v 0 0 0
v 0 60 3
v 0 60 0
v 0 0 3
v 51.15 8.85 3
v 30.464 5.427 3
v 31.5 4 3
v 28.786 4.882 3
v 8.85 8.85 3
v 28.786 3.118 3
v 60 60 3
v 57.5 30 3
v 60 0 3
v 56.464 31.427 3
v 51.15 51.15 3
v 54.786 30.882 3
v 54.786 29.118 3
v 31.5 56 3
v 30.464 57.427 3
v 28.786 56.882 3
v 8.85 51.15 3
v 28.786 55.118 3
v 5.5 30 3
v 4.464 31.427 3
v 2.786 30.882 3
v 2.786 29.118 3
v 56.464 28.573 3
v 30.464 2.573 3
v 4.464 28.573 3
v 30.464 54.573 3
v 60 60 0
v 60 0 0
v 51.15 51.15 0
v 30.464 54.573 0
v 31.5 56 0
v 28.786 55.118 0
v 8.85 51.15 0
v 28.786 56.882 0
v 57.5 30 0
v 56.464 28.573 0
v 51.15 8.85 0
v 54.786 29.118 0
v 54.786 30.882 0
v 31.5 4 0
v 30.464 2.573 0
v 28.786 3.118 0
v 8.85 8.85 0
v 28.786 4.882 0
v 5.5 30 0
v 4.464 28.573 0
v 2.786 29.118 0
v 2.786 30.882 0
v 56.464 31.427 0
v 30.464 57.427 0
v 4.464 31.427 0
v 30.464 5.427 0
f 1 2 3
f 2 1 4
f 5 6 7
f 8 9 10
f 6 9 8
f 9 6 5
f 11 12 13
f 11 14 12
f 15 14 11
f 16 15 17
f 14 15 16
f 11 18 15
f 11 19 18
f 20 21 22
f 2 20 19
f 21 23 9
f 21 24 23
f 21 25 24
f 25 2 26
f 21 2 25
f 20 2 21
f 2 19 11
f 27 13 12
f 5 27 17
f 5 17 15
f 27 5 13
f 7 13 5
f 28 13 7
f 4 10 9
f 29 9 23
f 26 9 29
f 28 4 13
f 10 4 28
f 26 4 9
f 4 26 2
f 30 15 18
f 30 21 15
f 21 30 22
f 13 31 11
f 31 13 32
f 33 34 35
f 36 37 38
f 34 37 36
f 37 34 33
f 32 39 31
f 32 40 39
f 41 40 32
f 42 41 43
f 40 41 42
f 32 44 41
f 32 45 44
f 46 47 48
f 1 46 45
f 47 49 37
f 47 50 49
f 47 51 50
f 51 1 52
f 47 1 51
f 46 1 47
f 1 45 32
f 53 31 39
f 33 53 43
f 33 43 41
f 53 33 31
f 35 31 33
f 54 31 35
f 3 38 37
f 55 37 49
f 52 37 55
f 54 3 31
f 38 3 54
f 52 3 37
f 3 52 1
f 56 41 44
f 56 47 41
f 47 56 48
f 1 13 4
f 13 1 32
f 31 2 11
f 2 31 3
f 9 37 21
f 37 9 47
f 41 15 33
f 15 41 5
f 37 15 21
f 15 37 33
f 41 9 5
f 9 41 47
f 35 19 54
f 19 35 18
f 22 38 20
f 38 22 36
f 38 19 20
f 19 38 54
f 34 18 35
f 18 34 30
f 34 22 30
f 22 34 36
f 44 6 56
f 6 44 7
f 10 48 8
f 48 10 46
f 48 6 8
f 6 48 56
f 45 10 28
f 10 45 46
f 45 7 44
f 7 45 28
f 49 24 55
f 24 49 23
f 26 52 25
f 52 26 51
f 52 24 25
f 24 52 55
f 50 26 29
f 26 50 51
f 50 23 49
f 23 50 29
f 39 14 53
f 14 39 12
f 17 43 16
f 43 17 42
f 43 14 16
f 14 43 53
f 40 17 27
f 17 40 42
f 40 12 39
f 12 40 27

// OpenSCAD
// file: modules.scad
thickness = 3;
ultrasonic_hole_radius = 8.25;
ultrasonic_hole_distance = 25.5;
pin_side = 2.5;



module roundExtract(pos_x, pos_y, radius) {
     translate([pos_x, pos_y,0]) 
		cylinder(h = thickness, r = radius);
 }

module squareExtract(pos_x, pos_y, width, length) {
	translate([pos_x, pos_y,0])
		cube(size = [width, length, thickness]);
}

module ultrasonicExtract(pos_x, pos_y, rotation) {
	translate([pos_x,pos_y,0]){
		rotate([0,0,rotation]) {
			union(){ 
				translate([0,0,0])
					cylinder(h = thickness, r = ultrasonic_hole_radius);
				translate([ultrasonic_hole_distance,0,0])
					cylinder(h = thickness, r = ultrasonic_hole_radius);
				translate([ultrasonic_hole_distance/2-3.75,-9,0])
					cube(size = [7.5, 2, thickness]);
				translate([ultrasonic_hole_distance/2-4.75,6,0])
					cube(size = [10, 4, thickness]);
			}
		}
	}
}

module IMUExtract(pos_x,pos_y, rotation) {
	translate([pos_x,pos_y,0]){
		rotate([0,0,rotation]) {
			union(){ 
				roundExtract(13,3,2);
				roundExtract(13,25,2);
				squareExtract(0,0,pin_side,pin_side*11);
			}
		}
	}
}

module stepperExtraction(pos_x,pos_y, rotation) {
	translate([pos_x,pos_y,0]){
		rotate([0,0,rotation]) {
			union(){ 
				roundExtract(14,9,2);
				roundExtract(10,33,2);
				squareExtract(1.5,1.5,pin_side,pin_side*3);//3 pins
				squareExtract(20-pin_side-1.5,1.5,pin_side,pin_side*2);//2 pin
				squareExtract(20-pin_side-1.5,32,pin_side,pin_side*4);//4 pins
			}
		}
	}

}

module screwAttach(pos_x, pos_y, pos_z, width, length, height, rotation) {
translate([pos_x,pos_y, pos_z]){
		rotate([0,0,rotation]) {
			difference(){ 
				cube(width,length,height);
				translate([width/2, 0,height/2]) {
					rotate([270,0,0]) {
						cylinder(h = 10, r=2);
					}
				}
				
			}
		}
	}


}
// main file
include <modules.scad>;

motor_cache_side = 60;
motor_side = 42.3;
motor_hole_offset = (motor_cache_side - motor_side)/2;
thickness = 3;
M3_radius = 1.5;
motor_hole_distance = 31;
cache_hole_distance = 48;
motor_cicle_radius = 11.5;
circle_radius = 30;
screw_cache_offset = 2;

difference(){
    //cache
    cube([motor_cache_side,motor_cache_side,thickness]);
   
    //hole for the nema motor
    translate([motor_hole_offset, motor_hole_offset, 0]){
        cube([motor_side, motor_side, thickness]);
    }
    

	//Holes for cache's screws
	roundExtract(motor_cache_side/2, motor_cache_side/2 + cache_hole_distance/2 + screw_cache_offset, M3_radius);	
	roundExtract(motor_cache_side/2, motor_cache_side/2 - cache_hole_distance/2 - screw_cache_offset, M3_radius);
	roundExtract(motor_cache_side/2 - cache_hole_distance/2 - screw_cache_offset, motor_cache_side/2, M3_radius);
	roundExtract(motor_cache_side/2 + cache_hole_distance/2 + screw_cache_offset, motor_cache_side/2, M3_radius);
}
